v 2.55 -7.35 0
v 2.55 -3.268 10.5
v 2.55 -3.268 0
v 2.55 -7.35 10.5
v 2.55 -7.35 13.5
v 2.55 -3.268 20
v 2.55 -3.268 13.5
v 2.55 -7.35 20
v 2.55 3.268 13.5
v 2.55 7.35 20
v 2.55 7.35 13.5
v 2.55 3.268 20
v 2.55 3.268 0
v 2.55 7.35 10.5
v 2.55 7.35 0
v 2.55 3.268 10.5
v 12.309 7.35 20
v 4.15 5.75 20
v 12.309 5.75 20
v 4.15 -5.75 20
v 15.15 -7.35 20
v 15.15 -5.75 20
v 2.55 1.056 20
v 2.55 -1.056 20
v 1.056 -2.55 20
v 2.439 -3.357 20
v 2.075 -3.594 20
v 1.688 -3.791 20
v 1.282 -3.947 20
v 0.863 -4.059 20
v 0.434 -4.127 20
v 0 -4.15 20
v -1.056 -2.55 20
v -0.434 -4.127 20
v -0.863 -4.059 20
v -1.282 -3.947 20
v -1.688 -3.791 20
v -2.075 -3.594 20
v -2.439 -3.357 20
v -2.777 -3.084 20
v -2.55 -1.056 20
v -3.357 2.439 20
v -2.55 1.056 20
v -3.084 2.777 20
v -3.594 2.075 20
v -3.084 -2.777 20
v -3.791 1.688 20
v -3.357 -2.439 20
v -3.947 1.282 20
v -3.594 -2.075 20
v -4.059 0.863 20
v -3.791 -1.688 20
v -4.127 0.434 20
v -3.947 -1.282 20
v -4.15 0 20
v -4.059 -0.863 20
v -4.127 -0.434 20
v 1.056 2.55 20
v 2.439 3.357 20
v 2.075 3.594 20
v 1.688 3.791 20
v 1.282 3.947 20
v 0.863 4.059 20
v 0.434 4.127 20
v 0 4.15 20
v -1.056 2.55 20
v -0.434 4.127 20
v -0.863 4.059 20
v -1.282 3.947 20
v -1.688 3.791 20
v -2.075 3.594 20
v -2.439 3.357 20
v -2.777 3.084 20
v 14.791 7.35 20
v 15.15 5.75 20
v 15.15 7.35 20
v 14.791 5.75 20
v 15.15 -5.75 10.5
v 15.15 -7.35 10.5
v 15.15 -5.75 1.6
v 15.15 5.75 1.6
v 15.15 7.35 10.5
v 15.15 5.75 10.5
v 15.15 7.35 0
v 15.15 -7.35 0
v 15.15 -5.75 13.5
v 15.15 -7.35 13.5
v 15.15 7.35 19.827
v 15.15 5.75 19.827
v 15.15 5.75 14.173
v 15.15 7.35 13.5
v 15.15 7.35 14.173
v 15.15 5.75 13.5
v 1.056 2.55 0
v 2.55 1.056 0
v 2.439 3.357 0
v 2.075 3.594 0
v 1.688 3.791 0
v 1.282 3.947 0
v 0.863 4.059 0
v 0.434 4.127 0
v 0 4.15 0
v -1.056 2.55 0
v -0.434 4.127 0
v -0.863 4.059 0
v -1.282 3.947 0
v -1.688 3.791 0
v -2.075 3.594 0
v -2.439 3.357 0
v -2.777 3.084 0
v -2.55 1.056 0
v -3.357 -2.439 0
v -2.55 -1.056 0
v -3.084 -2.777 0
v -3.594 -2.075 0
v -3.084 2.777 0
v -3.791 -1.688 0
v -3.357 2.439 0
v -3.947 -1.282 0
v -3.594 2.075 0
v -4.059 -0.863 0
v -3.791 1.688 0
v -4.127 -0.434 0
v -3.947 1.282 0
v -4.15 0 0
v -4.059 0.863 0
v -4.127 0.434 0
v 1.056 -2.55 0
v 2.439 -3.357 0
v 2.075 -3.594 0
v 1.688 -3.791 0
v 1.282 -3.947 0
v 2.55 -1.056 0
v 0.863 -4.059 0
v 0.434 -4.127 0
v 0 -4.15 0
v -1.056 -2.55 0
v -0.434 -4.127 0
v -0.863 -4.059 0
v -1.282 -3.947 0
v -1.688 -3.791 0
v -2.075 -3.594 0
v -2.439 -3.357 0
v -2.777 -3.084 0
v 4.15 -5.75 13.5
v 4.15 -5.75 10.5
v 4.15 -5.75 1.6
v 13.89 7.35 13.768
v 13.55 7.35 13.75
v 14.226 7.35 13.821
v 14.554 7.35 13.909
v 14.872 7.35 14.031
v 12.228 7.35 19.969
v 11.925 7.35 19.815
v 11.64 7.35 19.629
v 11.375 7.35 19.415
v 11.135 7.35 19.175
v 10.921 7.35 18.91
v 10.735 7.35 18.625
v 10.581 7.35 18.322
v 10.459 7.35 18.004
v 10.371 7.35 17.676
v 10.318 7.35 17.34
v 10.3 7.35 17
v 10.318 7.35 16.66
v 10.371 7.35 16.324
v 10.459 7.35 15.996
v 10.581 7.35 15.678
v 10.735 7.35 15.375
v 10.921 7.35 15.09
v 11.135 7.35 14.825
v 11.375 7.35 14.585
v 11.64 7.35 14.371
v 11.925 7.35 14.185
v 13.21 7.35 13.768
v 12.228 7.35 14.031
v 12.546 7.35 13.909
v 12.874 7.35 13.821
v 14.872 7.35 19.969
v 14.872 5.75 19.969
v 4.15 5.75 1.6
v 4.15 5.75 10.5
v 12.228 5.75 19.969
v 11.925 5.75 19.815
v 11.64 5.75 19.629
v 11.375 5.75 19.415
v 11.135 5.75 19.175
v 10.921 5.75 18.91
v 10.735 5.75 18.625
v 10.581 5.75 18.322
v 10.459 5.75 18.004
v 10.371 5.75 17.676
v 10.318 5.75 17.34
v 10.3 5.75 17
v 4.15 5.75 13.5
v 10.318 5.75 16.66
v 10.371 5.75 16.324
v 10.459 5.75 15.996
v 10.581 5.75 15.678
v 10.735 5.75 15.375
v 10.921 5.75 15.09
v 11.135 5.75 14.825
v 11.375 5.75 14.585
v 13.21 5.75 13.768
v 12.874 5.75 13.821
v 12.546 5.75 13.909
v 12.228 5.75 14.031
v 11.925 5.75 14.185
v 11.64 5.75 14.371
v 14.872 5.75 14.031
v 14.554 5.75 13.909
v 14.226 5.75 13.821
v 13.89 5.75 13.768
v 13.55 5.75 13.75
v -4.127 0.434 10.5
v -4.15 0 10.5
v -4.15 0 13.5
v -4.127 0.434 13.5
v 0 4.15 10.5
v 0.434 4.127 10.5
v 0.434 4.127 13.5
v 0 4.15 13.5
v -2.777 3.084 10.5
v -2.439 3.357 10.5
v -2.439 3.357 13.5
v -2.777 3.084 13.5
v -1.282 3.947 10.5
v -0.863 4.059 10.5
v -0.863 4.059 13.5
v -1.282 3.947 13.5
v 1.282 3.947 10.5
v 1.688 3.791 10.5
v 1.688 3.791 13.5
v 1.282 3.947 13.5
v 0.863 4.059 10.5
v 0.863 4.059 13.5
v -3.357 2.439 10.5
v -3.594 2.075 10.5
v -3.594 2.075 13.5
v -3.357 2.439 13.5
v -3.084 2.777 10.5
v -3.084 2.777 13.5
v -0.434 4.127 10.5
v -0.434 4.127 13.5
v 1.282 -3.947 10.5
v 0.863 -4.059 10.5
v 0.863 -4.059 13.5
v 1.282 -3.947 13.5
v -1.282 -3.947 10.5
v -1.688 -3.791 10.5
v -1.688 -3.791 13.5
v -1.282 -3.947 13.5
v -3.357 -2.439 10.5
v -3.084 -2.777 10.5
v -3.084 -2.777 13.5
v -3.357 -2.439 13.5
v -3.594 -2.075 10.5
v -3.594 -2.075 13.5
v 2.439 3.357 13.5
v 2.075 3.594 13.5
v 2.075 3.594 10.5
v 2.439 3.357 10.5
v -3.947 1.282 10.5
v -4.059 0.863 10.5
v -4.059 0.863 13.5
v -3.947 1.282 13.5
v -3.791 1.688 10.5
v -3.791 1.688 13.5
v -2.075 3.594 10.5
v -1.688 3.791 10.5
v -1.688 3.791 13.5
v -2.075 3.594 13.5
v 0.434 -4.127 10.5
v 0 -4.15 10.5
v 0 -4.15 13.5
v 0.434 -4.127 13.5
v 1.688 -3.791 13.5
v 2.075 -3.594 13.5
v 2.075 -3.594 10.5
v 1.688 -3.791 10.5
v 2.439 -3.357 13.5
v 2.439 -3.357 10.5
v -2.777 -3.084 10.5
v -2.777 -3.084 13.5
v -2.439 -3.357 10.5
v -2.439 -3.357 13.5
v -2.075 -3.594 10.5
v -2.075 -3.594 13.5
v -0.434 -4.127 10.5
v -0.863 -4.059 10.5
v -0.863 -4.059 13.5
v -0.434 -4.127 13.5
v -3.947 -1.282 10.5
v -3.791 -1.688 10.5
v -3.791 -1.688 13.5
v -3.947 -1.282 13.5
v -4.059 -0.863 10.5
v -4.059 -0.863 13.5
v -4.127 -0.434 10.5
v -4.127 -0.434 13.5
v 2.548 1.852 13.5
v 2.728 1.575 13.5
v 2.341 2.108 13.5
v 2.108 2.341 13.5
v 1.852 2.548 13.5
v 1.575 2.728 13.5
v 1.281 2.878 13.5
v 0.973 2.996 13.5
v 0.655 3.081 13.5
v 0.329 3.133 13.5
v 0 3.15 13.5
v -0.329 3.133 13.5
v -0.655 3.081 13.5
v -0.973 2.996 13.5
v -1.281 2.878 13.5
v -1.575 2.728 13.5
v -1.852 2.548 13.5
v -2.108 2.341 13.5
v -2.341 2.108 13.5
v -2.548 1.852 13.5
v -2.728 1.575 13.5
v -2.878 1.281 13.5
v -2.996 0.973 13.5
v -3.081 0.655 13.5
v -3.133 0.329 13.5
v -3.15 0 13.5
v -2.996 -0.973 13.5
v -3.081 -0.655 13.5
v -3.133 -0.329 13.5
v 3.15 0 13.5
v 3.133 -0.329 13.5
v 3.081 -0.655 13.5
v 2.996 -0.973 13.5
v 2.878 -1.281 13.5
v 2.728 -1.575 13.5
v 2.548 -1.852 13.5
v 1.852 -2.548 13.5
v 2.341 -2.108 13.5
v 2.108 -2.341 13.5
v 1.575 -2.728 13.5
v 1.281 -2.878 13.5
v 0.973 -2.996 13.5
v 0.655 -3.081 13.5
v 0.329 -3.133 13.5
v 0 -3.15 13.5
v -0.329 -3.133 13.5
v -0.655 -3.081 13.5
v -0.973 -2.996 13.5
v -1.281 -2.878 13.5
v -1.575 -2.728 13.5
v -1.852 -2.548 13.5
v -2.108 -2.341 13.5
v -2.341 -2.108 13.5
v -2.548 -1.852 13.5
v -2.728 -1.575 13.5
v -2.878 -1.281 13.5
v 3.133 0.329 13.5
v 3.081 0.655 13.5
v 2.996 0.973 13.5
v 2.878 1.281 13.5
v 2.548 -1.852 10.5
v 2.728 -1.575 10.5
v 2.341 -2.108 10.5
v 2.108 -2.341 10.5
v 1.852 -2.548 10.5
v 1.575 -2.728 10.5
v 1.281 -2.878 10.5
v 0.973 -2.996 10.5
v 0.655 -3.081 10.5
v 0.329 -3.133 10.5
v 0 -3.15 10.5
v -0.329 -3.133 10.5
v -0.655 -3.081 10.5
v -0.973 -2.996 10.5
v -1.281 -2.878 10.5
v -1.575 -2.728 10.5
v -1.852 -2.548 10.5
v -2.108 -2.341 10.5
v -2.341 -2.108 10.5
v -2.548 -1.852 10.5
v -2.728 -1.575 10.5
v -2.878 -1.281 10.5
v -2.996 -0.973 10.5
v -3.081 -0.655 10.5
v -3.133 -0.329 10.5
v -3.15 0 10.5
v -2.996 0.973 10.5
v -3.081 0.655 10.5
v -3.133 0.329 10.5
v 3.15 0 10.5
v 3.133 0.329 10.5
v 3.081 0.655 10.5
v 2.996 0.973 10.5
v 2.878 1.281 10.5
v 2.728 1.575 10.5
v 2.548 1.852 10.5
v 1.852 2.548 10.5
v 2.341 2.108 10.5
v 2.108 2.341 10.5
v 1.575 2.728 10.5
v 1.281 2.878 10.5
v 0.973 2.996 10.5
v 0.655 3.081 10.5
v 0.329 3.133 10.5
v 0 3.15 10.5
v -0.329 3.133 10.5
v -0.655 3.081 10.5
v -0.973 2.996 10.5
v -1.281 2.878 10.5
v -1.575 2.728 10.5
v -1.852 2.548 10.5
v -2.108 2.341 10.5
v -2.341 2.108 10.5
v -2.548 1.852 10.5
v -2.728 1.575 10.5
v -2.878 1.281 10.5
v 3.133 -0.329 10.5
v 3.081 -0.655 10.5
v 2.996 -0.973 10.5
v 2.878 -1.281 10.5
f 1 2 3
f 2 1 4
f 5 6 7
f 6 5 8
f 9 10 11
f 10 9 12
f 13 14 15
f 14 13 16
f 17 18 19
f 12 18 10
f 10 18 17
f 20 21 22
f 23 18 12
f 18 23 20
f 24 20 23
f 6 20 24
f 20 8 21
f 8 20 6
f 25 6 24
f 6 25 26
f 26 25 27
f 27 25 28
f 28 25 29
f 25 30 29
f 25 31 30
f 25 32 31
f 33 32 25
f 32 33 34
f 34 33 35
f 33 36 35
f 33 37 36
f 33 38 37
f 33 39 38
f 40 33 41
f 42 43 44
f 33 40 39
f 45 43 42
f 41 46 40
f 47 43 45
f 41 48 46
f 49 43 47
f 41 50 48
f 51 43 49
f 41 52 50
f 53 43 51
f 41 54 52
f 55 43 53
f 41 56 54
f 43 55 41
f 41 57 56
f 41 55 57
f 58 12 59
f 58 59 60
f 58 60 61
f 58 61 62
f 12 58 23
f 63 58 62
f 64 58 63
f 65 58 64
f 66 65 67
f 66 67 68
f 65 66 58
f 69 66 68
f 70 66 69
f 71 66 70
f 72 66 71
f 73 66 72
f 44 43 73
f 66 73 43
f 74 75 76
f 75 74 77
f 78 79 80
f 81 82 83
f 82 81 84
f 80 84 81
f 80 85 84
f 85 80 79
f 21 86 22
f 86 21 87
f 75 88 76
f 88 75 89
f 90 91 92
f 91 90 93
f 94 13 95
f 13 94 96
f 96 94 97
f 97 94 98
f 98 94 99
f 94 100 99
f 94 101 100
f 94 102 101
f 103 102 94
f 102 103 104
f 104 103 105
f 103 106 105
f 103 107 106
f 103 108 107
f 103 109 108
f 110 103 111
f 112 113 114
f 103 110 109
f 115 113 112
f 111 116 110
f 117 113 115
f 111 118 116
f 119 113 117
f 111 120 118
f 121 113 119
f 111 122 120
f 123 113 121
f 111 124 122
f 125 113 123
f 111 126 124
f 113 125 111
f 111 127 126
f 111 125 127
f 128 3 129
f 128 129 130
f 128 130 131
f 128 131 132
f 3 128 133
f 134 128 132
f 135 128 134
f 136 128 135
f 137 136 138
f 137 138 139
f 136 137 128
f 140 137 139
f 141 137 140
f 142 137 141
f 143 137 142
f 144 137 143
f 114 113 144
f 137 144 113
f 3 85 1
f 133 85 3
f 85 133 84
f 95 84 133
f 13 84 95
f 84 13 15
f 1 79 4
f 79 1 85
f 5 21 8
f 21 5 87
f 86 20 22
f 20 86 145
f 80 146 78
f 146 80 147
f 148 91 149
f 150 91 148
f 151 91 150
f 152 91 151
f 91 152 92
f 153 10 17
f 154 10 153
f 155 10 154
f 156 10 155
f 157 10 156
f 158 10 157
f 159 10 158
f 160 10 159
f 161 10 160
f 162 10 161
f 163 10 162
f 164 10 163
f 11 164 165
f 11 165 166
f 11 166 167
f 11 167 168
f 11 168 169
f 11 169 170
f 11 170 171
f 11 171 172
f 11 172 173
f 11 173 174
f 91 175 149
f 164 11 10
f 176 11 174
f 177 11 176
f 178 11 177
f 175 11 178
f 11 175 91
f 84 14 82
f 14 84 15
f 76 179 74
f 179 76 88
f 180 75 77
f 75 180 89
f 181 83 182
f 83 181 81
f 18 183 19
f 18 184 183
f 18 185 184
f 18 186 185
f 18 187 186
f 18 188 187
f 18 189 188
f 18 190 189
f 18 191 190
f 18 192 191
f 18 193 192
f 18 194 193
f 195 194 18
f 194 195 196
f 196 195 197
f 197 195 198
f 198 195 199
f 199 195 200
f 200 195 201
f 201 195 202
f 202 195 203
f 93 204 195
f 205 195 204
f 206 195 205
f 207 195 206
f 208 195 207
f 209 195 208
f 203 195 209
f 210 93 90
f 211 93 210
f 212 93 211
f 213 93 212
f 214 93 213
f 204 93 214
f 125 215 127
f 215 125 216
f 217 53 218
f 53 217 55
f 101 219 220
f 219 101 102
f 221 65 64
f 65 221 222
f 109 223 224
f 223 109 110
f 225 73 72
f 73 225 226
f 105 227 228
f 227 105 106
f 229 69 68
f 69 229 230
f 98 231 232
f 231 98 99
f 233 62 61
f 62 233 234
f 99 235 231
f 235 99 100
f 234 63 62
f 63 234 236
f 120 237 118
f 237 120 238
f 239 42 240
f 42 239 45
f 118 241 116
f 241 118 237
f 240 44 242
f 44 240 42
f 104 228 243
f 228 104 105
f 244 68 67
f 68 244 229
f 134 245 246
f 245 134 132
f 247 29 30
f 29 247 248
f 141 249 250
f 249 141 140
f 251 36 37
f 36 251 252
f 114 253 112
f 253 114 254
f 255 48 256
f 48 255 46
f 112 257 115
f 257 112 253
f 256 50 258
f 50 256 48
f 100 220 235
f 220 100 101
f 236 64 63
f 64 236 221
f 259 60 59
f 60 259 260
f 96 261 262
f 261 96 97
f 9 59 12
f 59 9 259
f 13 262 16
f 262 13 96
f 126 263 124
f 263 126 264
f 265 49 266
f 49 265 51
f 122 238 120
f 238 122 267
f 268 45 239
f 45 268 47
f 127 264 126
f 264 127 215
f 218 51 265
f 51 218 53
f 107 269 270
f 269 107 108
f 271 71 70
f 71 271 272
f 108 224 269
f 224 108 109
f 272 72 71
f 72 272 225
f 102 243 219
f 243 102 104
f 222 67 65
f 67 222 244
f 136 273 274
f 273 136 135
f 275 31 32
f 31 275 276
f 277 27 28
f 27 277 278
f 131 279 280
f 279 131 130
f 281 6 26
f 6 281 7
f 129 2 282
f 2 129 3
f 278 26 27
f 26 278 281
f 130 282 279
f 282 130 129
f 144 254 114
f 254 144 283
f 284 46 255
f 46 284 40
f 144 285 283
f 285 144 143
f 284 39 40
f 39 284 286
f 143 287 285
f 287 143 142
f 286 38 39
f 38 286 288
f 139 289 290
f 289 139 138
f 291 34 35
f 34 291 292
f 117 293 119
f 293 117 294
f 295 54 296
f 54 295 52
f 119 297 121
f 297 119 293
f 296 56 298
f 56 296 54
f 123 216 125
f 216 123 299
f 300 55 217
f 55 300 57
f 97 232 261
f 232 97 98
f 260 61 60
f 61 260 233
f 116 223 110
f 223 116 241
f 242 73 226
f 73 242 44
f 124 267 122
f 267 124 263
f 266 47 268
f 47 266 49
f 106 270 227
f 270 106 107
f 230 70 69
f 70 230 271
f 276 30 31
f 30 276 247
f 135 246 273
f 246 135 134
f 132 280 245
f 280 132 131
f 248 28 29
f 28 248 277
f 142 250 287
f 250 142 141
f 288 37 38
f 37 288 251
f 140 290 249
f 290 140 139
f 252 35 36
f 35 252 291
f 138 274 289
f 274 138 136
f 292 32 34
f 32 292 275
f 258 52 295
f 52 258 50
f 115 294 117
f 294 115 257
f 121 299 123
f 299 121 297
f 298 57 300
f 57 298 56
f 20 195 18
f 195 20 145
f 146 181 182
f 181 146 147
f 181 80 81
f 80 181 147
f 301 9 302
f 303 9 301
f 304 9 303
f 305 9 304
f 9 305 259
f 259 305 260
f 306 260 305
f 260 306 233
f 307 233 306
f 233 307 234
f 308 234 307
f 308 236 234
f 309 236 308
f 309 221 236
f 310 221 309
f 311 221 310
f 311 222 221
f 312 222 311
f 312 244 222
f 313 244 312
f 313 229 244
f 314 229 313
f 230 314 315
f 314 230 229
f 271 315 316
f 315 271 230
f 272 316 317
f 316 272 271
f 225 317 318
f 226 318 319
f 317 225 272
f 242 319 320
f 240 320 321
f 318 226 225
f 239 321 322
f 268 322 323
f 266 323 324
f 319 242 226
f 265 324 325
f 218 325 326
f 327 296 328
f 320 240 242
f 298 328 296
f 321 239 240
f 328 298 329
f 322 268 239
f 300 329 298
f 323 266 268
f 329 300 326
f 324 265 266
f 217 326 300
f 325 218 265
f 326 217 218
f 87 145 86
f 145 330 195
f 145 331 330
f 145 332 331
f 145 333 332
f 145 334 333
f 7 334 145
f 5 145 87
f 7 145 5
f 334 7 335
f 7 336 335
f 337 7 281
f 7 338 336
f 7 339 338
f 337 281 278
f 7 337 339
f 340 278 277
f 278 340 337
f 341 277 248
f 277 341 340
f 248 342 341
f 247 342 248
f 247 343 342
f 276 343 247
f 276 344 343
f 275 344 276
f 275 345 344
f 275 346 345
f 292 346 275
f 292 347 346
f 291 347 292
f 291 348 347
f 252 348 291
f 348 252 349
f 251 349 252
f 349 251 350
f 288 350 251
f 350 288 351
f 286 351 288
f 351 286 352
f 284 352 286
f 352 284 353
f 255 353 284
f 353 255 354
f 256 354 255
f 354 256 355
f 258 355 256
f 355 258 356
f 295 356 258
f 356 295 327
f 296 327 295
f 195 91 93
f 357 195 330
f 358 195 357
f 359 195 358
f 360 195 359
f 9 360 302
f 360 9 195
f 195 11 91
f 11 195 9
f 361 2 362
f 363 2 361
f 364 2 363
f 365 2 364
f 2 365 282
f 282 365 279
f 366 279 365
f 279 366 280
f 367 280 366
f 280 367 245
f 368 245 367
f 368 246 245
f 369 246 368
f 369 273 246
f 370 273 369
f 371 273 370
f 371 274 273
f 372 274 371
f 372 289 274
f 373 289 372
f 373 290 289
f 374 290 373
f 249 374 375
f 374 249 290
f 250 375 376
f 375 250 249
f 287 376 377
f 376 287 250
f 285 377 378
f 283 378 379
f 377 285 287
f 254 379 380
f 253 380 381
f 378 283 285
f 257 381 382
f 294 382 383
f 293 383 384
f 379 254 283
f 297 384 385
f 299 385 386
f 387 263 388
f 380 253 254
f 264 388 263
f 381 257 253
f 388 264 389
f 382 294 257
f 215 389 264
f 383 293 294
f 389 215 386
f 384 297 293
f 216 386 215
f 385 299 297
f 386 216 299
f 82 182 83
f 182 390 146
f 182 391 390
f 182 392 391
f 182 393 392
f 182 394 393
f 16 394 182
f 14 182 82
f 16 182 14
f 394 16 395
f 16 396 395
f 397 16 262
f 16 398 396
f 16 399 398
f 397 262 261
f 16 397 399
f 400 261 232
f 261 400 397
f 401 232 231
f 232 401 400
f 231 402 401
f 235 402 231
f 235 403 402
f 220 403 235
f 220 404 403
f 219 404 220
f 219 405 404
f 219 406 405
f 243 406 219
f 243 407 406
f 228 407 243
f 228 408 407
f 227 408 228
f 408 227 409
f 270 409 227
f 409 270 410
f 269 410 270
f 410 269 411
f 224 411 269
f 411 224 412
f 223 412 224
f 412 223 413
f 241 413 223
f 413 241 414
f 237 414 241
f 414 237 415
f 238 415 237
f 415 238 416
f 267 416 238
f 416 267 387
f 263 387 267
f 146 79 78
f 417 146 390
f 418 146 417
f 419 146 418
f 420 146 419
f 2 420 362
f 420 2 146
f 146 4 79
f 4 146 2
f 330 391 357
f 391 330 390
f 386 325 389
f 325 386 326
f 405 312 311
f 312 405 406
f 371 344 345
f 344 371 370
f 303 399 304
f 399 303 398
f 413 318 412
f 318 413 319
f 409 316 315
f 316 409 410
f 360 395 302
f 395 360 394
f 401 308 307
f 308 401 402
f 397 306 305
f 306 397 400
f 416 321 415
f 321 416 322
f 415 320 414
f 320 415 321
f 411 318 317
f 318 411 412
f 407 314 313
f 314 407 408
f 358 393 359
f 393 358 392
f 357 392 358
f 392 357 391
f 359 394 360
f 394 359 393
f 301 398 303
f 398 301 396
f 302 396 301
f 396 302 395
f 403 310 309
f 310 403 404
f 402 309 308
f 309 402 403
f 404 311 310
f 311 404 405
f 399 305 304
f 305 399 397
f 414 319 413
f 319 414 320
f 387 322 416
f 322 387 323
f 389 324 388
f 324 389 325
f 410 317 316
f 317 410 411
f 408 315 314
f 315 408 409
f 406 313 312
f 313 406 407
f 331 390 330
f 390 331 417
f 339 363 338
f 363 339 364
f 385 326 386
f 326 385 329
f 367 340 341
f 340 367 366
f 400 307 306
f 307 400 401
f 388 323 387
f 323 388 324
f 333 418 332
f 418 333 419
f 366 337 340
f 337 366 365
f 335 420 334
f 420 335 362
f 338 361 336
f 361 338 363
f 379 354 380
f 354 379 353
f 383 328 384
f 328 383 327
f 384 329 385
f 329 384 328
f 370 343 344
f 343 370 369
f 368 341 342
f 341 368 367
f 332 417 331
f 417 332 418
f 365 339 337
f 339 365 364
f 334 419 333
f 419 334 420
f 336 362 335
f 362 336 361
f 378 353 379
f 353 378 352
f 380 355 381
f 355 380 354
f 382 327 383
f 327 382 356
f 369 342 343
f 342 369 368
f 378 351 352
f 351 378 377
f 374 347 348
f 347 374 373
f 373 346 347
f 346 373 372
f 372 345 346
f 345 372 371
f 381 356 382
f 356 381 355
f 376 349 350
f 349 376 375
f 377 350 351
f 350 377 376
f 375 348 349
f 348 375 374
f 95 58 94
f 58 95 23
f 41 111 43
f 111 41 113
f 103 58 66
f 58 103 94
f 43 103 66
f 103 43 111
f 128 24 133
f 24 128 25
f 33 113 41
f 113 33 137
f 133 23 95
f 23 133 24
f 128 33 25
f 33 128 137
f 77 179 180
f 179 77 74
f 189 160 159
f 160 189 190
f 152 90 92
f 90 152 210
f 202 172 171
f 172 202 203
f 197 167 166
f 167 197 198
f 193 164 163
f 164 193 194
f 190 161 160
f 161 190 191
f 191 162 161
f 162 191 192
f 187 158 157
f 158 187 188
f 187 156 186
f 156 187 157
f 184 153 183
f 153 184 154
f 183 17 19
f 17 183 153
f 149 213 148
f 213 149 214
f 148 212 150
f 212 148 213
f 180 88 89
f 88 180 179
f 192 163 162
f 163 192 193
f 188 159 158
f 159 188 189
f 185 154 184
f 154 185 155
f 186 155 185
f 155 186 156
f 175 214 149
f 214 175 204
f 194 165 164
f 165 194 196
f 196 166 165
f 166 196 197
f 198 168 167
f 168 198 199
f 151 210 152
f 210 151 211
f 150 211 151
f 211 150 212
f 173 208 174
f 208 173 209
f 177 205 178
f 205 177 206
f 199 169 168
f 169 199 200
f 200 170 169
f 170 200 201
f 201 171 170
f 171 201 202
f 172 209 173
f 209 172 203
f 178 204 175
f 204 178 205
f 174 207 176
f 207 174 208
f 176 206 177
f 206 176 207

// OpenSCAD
// Copyright (C) 2026 Weston Hinton <wbhinton@gmail.com>
//
// This program is free software: you can redistribute it and/or modify
// it under the terms of the GNU General Public License as published by
// the Free Software Foundation, either version 3 of the License, or
// (at your option) any later version.
//
// This program is distributed in the hope that it will be useful,
// but WITHOUT ANY WARRANTY; without even the implied warranty of
// MERCHANTABILITY or FITNESS FOR A PARTICULAR PURPOSE.  See the
// GNU General Public License for more details.
//
// You should have received a copy of the GNU General Public License
// along with this program.  If not, see <https://www.gnu.org/licenses/>.
// =============================================================================
// PROJECT: VIFLY UNIVERSAL C-BRACKET (OCTO-SLEEVE)
// VERSION: 1.5 (Octagonal Bore & Secured Floor)
// DESCRIPTION: Features an octagonal standoff hole for a superior TPU fit
//              and a solid bottom plate for buzzer security.
// =============================================================================

/* [1. STANDOFF SETTINGS] */
// Diameter of the standoff (Standard 5mm). Octagon shape handles the fit.
standoff_dia    = 5.1; 
wall_thick      = 1.6; 

/* [2. BUZZER DIMENSIONS] */
buz_w           = 11.5; 
buz_l           = 18.0; 
jaw_depth       = 11.0;  

/* [3. FEATURE SETTINGS] */
ziptie_w        = 3;
button_z_offset = 15.0; 
button_dia      = 6.5;

/* [4. INTERNAL CALCULATIONS] */
// $fn=8 creates the octagonal bore
$fn = 60;
total_h = buz_l + 2; 

// =============================================================================
// MAIN ASSEMBLY
// =============================================================================

difference() {
    
    // --- STEP 1: THE SOLID BODY ---
    union() {
        // A. The Standoff Sleeve (Outer remains round for aero)
        cylinder(h=total_h, d=standoff_dia + (wall_thick * 2));
        
        // B. The Dual Side Jaws
        for(y = [-1, 1]) {
            translate([standoff_dia/2 + jaw_depth/2 + wall_thick/2, y * (buz_w/2 + wall_thick/2), total_h/2])
                cube([jaw_depth + wall_thick, wall_thick, total_h], center=true);
        }
            
        // C. Structural Back-Plate
        translate([standoff_dia/2 + wall_thick/2, 0, total_h/2])
            cube([wall_thick, buz_w + wall_thick*2, total_h], center=true);

        // D. The Secured Floor
        translate([standoff_dia/2 + jaw_depth/2 + wall_thick/2, 0, wall_thick/2])
            cube([jaw_depth + wall_thick, buz_w + wall_thick*2, wall_thick], center=true);
    }

    // --- STEP 2: THE SUBTRACTIONS ---

    // A. THE OCTAGONAL STANDOFF BORE
    // We use $fn=8 here to create the internal ridges for better TPU fit.
    translate([0, 0, -1])
        rotate([0, 0, 22.5]) // Rotates octagon so flats face the buzzer
            cylinder(h=total_h + 2, d=standoff_dia / cos(180/8), $fn=8);

    // B. THE BUTTON WINDOW
    translate([standoff_dia/2 + jaw_depth, buz_w/2 + wall_thick/2, 2 + button_z_offset])
        rotate([90, 0, 0])
            cylinder(h=10, d=button_dia, center=true);

    // C. RETENTION ZIP-TIE TRENCH
    translate([0, 0, total_h/2 + 2])
        difference() {
            cylinder(h=ziptie_w, d=standoff_dia + jaw_depth * 4, center=true);
            cylinder(h=ziptie_w + 1, d=standoff_dia + (wall_thick * 0.75), center=true);
        }
}
